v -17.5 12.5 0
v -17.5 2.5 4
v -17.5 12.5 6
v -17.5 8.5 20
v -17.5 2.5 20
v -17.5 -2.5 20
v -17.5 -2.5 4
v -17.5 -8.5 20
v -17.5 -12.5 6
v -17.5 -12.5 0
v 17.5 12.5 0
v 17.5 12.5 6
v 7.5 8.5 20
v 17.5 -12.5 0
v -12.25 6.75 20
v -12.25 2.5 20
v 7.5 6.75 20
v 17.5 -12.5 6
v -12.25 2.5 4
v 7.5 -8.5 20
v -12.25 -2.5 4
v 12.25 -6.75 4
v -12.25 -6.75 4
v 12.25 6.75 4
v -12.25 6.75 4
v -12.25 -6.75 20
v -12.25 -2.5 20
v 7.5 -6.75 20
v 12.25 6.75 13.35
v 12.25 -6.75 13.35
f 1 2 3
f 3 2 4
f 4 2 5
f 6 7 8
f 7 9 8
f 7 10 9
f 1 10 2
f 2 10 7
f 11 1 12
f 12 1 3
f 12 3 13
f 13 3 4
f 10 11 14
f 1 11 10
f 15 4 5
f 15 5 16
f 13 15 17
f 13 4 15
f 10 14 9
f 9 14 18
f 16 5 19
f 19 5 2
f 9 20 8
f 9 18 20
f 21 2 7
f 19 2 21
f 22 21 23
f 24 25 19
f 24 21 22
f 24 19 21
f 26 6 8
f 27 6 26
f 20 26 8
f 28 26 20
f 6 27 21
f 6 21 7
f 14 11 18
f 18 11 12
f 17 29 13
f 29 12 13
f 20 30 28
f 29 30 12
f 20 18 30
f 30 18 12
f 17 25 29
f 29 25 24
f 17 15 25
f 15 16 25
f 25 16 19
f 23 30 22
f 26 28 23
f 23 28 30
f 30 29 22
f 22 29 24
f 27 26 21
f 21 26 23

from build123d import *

# Parameters (mm, degrees)
SKETCH_W         = 35
SKETCH_H         = 25
PAD_DEPTH        = 20
POCKET_DEPTH     = 16
CHAMFER_SIZE2    = 14
CHAMFER_SIZE     = 4
CHAMFER001_SIZE2 = 14
CHAMFER001_SIZE  = 4
POCKET001_DEPTH  = 25.001


with BuildPart() as part:
    # Sketch → Pad (new body)
    with BuildSketch(Plane.XY):
        Rectangle(SKETCH_W, SKETCH_H)
    extrude(amount=PAD_DEPTH)

    # Sketch001 (on Face6 of Pad) → Pocket (cut)
    with BuildSketch(Plane.XY.offset(20)):
        Polygon((-12.25, -6.75), (12.25, -6.75), (12.25, 6.75), (-12.25, 6.75), (-12.25, 2.5), (-17.5, 2.5), (-17.5, -2.5), (-12.25, -2.5), align=None)
    extrude(amount=-POCKET_DEPTH, mode=Mode.SUBTRACT)

    # Chamfer
    chamfer_edges = [part.edges().sort_by_distance(p)[0] for p in [
        (0, -12.5, 20),
    ]]
    chamfer_side = part.faces().sort_by_distance((-17.069884, -7.5, 20))[0]
    chamfer(chamfer_edges, length=CHAMFER_SIZE, length2=CHAMFER_SIZE2, reference=chamfer_side)

    # Chamfer001
    chamfer001_edges = [part.edges().sort_by_distance(p)[0] for p in [
        (0, 12.5, 20),
    ]]
    chamfer001_side = part.faces().sort_by_distance((-17.091833, -5.5, 20))[0]
    chamfer(chamfer001_edges, length=CHAMFER001_SIZE, length2=CHAMFER001_SIZE2, reference=chamfer001_side)

    # Sketch002 (on Face6 of Chamfer001) → Pocket001 (cut, through all)
    with BuildSketch(Plane.XZ.offset(12.5)):
        Polygon((7.5, 20), (17.5, 20), (17.5, 6), align=None)
    extrude(amount=-POCKET001_DEPTH, mode=Mode.SUBTRACT)


solid = part.part
